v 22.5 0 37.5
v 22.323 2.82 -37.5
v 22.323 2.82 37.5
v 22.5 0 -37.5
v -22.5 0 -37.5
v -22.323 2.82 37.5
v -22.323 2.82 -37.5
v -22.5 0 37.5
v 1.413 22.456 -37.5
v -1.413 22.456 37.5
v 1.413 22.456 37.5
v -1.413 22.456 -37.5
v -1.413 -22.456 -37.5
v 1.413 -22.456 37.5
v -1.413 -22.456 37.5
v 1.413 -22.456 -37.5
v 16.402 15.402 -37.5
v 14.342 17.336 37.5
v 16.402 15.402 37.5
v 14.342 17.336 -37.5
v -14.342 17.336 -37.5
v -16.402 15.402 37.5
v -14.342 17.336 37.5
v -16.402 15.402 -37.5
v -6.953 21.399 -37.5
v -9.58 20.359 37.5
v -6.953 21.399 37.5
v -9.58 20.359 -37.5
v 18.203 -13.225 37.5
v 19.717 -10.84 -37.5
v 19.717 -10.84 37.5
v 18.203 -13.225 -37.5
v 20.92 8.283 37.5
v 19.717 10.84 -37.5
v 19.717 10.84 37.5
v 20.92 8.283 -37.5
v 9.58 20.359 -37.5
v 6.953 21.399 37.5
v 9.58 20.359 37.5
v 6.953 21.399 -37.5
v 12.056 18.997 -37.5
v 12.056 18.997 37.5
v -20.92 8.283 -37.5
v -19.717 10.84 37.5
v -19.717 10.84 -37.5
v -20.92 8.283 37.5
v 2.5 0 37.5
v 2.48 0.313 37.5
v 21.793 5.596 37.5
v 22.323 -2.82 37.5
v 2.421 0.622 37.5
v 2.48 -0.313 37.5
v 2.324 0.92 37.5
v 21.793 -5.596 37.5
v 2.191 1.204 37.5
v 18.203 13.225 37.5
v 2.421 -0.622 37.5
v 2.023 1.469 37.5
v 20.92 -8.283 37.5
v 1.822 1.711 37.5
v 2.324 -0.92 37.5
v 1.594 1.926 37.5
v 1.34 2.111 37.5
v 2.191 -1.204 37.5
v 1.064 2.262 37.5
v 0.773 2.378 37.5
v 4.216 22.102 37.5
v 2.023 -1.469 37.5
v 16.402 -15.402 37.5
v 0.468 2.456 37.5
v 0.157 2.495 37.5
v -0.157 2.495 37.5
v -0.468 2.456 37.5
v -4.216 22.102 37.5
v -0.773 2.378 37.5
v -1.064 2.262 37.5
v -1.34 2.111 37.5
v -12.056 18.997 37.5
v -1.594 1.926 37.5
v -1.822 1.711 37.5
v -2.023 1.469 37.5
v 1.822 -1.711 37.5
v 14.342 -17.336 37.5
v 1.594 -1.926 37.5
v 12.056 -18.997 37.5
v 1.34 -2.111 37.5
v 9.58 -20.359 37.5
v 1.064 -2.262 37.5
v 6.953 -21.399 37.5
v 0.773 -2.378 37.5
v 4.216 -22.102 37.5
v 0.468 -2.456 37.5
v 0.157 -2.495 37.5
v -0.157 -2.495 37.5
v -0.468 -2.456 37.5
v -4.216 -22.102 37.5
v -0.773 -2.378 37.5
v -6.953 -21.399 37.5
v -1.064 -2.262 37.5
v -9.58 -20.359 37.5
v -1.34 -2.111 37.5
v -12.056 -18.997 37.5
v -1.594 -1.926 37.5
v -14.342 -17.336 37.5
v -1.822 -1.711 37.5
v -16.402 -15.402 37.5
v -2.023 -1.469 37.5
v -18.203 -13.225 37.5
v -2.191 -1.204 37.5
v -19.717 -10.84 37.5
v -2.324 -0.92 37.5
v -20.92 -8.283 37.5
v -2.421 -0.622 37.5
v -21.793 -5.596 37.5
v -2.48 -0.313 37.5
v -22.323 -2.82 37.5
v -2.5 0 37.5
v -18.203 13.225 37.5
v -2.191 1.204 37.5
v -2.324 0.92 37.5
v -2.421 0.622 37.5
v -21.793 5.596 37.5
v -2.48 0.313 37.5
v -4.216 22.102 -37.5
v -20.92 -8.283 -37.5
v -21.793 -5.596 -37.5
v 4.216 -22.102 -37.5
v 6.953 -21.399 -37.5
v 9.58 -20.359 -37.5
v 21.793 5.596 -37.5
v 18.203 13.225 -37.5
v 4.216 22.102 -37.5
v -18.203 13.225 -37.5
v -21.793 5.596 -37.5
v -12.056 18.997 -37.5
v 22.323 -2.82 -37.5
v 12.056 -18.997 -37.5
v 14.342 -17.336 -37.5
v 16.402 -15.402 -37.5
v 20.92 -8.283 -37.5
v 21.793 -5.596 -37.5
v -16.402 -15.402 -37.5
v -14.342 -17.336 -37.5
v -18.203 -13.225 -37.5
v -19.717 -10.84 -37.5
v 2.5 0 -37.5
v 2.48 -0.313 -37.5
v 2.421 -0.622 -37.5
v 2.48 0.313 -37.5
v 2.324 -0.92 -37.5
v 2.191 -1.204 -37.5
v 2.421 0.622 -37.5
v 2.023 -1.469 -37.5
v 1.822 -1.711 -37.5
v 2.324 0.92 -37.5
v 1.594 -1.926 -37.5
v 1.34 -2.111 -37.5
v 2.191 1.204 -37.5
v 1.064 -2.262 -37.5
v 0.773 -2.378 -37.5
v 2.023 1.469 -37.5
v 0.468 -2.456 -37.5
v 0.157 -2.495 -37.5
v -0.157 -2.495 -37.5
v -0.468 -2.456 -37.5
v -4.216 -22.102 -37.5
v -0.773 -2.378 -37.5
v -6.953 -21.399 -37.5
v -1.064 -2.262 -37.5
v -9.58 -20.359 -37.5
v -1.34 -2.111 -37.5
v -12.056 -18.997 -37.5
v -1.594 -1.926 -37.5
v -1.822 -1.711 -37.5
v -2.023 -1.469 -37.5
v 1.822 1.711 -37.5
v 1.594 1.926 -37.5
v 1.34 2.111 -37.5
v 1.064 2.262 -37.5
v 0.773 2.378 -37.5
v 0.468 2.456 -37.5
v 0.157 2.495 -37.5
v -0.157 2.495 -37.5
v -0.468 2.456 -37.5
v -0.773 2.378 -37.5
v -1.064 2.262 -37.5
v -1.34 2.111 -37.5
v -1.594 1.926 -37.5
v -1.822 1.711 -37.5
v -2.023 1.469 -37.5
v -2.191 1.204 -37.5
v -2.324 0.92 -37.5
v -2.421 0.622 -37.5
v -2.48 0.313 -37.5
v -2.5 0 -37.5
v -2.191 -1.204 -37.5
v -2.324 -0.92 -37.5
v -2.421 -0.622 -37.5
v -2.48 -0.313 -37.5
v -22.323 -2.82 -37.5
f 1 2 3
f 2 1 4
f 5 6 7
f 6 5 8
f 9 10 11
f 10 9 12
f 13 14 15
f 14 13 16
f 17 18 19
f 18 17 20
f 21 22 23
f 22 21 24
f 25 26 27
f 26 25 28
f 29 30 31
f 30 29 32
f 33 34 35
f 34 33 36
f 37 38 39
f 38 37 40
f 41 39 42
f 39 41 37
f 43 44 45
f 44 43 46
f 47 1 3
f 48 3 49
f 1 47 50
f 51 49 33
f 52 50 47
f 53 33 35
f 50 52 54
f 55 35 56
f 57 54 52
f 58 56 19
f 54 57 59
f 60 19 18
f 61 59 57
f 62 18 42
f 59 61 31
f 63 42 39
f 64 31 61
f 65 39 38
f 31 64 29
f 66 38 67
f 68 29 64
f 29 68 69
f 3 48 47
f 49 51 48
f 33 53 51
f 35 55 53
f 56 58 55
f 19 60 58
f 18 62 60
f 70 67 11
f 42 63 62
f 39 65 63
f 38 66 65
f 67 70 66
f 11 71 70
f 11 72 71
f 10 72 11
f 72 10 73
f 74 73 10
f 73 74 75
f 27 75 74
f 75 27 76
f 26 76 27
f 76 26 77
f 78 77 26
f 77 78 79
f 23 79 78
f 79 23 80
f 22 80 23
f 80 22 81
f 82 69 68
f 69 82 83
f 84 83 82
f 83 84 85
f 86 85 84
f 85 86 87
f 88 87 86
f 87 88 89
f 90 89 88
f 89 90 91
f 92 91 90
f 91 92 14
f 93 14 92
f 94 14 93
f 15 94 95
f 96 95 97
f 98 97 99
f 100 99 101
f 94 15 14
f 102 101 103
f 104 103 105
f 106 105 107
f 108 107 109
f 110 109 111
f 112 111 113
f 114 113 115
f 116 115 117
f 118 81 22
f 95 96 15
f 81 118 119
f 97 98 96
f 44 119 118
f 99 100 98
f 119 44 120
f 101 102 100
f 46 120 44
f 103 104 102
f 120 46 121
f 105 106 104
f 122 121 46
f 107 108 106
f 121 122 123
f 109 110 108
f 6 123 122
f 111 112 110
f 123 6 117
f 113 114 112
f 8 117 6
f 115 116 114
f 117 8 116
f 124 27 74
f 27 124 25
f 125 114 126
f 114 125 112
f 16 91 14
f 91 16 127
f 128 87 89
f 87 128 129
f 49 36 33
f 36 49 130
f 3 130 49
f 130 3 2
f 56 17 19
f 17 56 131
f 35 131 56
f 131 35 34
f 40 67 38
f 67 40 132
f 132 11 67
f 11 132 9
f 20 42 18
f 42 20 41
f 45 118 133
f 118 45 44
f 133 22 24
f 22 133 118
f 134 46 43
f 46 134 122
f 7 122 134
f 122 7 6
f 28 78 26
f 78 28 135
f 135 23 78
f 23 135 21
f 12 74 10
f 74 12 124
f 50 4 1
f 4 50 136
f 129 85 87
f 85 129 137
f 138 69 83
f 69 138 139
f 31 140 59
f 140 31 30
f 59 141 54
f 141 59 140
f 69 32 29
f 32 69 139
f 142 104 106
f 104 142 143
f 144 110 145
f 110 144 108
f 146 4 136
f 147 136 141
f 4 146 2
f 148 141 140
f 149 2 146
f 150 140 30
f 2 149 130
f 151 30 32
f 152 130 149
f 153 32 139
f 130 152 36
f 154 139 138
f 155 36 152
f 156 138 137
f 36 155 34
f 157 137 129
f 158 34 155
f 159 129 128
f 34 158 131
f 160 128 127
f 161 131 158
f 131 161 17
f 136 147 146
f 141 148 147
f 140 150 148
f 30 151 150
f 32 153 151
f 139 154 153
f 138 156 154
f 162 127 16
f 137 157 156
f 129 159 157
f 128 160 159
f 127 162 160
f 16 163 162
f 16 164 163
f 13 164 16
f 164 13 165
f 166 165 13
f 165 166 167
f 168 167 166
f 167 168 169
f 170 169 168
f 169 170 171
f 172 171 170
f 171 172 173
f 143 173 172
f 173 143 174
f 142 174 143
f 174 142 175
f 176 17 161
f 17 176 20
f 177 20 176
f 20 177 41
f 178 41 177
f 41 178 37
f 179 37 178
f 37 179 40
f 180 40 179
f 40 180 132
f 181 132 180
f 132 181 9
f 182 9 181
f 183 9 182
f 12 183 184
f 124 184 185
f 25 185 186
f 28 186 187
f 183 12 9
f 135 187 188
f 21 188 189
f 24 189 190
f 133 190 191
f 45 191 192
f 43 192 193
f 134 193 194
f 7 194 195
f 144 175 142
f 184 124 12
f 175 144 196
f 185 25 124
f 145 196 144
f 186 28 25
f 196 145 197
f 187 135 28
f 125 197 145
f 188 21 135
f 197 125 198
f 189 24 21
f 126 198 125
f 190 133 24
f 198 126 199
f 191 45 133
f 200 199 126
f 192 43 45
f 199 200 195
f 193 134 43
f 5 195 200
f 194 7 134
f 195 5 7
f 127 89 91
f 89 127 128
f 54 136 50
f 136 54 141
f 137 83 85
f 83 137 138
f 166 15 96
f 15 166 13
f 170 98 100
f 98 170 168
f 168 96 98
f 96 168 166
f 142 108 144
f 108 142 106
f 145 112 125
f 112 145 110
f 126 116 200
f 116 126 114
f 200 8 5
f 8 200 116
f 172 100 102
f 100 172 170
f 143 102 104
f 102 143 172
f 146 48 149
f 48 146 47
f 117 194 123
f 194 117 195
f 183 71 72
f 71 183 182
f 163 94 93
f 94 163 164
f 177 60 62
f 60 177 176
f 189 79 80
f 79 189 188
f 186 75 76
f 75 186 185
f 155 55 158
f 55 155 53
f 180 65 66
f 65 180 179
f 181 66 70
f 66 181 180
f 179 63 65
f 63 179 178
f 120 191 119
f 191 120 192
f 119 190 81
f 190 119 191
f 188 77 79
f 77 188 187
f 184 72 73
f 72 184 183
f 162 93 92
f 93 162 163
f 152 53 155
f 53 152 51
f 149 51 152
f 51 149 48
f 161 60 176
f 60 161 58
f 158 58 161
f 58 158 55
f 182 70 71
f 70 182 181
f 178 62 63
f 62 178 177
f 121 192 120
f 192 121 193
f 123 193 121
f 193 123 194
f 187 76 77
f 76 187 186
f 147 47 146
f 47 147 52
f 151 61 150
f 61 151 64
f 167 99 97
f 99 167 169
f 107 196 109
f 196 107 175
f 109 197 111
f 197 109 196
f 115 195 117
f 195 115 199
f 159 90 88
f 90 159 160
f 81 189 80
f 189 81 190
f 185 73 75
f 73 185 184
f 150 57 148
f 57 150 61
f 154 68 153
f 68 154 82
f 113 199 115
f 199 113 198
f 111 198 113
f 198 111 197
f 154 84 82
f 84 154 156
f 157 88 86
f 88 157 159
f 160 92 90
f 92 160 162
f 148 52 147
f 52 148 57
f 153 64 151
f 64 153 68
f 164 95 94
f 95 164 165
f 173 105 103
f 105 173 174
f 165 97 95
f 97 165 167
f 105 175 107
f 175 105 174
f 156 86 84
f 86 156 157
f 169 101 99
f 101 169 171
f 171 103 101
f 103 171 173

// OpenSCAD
$fn = 50;


difference() {
	union() {
		translate(v = [0, 0, -37.5000000000]) {
			cylinder(h = 75, r = 22.5000000000);
		}
	}
	union() {
		translate(v = [0, 0, -100.0000000000]) {
			cylinder(h = 200, r = 2.5000000000);
		}
	}
}
